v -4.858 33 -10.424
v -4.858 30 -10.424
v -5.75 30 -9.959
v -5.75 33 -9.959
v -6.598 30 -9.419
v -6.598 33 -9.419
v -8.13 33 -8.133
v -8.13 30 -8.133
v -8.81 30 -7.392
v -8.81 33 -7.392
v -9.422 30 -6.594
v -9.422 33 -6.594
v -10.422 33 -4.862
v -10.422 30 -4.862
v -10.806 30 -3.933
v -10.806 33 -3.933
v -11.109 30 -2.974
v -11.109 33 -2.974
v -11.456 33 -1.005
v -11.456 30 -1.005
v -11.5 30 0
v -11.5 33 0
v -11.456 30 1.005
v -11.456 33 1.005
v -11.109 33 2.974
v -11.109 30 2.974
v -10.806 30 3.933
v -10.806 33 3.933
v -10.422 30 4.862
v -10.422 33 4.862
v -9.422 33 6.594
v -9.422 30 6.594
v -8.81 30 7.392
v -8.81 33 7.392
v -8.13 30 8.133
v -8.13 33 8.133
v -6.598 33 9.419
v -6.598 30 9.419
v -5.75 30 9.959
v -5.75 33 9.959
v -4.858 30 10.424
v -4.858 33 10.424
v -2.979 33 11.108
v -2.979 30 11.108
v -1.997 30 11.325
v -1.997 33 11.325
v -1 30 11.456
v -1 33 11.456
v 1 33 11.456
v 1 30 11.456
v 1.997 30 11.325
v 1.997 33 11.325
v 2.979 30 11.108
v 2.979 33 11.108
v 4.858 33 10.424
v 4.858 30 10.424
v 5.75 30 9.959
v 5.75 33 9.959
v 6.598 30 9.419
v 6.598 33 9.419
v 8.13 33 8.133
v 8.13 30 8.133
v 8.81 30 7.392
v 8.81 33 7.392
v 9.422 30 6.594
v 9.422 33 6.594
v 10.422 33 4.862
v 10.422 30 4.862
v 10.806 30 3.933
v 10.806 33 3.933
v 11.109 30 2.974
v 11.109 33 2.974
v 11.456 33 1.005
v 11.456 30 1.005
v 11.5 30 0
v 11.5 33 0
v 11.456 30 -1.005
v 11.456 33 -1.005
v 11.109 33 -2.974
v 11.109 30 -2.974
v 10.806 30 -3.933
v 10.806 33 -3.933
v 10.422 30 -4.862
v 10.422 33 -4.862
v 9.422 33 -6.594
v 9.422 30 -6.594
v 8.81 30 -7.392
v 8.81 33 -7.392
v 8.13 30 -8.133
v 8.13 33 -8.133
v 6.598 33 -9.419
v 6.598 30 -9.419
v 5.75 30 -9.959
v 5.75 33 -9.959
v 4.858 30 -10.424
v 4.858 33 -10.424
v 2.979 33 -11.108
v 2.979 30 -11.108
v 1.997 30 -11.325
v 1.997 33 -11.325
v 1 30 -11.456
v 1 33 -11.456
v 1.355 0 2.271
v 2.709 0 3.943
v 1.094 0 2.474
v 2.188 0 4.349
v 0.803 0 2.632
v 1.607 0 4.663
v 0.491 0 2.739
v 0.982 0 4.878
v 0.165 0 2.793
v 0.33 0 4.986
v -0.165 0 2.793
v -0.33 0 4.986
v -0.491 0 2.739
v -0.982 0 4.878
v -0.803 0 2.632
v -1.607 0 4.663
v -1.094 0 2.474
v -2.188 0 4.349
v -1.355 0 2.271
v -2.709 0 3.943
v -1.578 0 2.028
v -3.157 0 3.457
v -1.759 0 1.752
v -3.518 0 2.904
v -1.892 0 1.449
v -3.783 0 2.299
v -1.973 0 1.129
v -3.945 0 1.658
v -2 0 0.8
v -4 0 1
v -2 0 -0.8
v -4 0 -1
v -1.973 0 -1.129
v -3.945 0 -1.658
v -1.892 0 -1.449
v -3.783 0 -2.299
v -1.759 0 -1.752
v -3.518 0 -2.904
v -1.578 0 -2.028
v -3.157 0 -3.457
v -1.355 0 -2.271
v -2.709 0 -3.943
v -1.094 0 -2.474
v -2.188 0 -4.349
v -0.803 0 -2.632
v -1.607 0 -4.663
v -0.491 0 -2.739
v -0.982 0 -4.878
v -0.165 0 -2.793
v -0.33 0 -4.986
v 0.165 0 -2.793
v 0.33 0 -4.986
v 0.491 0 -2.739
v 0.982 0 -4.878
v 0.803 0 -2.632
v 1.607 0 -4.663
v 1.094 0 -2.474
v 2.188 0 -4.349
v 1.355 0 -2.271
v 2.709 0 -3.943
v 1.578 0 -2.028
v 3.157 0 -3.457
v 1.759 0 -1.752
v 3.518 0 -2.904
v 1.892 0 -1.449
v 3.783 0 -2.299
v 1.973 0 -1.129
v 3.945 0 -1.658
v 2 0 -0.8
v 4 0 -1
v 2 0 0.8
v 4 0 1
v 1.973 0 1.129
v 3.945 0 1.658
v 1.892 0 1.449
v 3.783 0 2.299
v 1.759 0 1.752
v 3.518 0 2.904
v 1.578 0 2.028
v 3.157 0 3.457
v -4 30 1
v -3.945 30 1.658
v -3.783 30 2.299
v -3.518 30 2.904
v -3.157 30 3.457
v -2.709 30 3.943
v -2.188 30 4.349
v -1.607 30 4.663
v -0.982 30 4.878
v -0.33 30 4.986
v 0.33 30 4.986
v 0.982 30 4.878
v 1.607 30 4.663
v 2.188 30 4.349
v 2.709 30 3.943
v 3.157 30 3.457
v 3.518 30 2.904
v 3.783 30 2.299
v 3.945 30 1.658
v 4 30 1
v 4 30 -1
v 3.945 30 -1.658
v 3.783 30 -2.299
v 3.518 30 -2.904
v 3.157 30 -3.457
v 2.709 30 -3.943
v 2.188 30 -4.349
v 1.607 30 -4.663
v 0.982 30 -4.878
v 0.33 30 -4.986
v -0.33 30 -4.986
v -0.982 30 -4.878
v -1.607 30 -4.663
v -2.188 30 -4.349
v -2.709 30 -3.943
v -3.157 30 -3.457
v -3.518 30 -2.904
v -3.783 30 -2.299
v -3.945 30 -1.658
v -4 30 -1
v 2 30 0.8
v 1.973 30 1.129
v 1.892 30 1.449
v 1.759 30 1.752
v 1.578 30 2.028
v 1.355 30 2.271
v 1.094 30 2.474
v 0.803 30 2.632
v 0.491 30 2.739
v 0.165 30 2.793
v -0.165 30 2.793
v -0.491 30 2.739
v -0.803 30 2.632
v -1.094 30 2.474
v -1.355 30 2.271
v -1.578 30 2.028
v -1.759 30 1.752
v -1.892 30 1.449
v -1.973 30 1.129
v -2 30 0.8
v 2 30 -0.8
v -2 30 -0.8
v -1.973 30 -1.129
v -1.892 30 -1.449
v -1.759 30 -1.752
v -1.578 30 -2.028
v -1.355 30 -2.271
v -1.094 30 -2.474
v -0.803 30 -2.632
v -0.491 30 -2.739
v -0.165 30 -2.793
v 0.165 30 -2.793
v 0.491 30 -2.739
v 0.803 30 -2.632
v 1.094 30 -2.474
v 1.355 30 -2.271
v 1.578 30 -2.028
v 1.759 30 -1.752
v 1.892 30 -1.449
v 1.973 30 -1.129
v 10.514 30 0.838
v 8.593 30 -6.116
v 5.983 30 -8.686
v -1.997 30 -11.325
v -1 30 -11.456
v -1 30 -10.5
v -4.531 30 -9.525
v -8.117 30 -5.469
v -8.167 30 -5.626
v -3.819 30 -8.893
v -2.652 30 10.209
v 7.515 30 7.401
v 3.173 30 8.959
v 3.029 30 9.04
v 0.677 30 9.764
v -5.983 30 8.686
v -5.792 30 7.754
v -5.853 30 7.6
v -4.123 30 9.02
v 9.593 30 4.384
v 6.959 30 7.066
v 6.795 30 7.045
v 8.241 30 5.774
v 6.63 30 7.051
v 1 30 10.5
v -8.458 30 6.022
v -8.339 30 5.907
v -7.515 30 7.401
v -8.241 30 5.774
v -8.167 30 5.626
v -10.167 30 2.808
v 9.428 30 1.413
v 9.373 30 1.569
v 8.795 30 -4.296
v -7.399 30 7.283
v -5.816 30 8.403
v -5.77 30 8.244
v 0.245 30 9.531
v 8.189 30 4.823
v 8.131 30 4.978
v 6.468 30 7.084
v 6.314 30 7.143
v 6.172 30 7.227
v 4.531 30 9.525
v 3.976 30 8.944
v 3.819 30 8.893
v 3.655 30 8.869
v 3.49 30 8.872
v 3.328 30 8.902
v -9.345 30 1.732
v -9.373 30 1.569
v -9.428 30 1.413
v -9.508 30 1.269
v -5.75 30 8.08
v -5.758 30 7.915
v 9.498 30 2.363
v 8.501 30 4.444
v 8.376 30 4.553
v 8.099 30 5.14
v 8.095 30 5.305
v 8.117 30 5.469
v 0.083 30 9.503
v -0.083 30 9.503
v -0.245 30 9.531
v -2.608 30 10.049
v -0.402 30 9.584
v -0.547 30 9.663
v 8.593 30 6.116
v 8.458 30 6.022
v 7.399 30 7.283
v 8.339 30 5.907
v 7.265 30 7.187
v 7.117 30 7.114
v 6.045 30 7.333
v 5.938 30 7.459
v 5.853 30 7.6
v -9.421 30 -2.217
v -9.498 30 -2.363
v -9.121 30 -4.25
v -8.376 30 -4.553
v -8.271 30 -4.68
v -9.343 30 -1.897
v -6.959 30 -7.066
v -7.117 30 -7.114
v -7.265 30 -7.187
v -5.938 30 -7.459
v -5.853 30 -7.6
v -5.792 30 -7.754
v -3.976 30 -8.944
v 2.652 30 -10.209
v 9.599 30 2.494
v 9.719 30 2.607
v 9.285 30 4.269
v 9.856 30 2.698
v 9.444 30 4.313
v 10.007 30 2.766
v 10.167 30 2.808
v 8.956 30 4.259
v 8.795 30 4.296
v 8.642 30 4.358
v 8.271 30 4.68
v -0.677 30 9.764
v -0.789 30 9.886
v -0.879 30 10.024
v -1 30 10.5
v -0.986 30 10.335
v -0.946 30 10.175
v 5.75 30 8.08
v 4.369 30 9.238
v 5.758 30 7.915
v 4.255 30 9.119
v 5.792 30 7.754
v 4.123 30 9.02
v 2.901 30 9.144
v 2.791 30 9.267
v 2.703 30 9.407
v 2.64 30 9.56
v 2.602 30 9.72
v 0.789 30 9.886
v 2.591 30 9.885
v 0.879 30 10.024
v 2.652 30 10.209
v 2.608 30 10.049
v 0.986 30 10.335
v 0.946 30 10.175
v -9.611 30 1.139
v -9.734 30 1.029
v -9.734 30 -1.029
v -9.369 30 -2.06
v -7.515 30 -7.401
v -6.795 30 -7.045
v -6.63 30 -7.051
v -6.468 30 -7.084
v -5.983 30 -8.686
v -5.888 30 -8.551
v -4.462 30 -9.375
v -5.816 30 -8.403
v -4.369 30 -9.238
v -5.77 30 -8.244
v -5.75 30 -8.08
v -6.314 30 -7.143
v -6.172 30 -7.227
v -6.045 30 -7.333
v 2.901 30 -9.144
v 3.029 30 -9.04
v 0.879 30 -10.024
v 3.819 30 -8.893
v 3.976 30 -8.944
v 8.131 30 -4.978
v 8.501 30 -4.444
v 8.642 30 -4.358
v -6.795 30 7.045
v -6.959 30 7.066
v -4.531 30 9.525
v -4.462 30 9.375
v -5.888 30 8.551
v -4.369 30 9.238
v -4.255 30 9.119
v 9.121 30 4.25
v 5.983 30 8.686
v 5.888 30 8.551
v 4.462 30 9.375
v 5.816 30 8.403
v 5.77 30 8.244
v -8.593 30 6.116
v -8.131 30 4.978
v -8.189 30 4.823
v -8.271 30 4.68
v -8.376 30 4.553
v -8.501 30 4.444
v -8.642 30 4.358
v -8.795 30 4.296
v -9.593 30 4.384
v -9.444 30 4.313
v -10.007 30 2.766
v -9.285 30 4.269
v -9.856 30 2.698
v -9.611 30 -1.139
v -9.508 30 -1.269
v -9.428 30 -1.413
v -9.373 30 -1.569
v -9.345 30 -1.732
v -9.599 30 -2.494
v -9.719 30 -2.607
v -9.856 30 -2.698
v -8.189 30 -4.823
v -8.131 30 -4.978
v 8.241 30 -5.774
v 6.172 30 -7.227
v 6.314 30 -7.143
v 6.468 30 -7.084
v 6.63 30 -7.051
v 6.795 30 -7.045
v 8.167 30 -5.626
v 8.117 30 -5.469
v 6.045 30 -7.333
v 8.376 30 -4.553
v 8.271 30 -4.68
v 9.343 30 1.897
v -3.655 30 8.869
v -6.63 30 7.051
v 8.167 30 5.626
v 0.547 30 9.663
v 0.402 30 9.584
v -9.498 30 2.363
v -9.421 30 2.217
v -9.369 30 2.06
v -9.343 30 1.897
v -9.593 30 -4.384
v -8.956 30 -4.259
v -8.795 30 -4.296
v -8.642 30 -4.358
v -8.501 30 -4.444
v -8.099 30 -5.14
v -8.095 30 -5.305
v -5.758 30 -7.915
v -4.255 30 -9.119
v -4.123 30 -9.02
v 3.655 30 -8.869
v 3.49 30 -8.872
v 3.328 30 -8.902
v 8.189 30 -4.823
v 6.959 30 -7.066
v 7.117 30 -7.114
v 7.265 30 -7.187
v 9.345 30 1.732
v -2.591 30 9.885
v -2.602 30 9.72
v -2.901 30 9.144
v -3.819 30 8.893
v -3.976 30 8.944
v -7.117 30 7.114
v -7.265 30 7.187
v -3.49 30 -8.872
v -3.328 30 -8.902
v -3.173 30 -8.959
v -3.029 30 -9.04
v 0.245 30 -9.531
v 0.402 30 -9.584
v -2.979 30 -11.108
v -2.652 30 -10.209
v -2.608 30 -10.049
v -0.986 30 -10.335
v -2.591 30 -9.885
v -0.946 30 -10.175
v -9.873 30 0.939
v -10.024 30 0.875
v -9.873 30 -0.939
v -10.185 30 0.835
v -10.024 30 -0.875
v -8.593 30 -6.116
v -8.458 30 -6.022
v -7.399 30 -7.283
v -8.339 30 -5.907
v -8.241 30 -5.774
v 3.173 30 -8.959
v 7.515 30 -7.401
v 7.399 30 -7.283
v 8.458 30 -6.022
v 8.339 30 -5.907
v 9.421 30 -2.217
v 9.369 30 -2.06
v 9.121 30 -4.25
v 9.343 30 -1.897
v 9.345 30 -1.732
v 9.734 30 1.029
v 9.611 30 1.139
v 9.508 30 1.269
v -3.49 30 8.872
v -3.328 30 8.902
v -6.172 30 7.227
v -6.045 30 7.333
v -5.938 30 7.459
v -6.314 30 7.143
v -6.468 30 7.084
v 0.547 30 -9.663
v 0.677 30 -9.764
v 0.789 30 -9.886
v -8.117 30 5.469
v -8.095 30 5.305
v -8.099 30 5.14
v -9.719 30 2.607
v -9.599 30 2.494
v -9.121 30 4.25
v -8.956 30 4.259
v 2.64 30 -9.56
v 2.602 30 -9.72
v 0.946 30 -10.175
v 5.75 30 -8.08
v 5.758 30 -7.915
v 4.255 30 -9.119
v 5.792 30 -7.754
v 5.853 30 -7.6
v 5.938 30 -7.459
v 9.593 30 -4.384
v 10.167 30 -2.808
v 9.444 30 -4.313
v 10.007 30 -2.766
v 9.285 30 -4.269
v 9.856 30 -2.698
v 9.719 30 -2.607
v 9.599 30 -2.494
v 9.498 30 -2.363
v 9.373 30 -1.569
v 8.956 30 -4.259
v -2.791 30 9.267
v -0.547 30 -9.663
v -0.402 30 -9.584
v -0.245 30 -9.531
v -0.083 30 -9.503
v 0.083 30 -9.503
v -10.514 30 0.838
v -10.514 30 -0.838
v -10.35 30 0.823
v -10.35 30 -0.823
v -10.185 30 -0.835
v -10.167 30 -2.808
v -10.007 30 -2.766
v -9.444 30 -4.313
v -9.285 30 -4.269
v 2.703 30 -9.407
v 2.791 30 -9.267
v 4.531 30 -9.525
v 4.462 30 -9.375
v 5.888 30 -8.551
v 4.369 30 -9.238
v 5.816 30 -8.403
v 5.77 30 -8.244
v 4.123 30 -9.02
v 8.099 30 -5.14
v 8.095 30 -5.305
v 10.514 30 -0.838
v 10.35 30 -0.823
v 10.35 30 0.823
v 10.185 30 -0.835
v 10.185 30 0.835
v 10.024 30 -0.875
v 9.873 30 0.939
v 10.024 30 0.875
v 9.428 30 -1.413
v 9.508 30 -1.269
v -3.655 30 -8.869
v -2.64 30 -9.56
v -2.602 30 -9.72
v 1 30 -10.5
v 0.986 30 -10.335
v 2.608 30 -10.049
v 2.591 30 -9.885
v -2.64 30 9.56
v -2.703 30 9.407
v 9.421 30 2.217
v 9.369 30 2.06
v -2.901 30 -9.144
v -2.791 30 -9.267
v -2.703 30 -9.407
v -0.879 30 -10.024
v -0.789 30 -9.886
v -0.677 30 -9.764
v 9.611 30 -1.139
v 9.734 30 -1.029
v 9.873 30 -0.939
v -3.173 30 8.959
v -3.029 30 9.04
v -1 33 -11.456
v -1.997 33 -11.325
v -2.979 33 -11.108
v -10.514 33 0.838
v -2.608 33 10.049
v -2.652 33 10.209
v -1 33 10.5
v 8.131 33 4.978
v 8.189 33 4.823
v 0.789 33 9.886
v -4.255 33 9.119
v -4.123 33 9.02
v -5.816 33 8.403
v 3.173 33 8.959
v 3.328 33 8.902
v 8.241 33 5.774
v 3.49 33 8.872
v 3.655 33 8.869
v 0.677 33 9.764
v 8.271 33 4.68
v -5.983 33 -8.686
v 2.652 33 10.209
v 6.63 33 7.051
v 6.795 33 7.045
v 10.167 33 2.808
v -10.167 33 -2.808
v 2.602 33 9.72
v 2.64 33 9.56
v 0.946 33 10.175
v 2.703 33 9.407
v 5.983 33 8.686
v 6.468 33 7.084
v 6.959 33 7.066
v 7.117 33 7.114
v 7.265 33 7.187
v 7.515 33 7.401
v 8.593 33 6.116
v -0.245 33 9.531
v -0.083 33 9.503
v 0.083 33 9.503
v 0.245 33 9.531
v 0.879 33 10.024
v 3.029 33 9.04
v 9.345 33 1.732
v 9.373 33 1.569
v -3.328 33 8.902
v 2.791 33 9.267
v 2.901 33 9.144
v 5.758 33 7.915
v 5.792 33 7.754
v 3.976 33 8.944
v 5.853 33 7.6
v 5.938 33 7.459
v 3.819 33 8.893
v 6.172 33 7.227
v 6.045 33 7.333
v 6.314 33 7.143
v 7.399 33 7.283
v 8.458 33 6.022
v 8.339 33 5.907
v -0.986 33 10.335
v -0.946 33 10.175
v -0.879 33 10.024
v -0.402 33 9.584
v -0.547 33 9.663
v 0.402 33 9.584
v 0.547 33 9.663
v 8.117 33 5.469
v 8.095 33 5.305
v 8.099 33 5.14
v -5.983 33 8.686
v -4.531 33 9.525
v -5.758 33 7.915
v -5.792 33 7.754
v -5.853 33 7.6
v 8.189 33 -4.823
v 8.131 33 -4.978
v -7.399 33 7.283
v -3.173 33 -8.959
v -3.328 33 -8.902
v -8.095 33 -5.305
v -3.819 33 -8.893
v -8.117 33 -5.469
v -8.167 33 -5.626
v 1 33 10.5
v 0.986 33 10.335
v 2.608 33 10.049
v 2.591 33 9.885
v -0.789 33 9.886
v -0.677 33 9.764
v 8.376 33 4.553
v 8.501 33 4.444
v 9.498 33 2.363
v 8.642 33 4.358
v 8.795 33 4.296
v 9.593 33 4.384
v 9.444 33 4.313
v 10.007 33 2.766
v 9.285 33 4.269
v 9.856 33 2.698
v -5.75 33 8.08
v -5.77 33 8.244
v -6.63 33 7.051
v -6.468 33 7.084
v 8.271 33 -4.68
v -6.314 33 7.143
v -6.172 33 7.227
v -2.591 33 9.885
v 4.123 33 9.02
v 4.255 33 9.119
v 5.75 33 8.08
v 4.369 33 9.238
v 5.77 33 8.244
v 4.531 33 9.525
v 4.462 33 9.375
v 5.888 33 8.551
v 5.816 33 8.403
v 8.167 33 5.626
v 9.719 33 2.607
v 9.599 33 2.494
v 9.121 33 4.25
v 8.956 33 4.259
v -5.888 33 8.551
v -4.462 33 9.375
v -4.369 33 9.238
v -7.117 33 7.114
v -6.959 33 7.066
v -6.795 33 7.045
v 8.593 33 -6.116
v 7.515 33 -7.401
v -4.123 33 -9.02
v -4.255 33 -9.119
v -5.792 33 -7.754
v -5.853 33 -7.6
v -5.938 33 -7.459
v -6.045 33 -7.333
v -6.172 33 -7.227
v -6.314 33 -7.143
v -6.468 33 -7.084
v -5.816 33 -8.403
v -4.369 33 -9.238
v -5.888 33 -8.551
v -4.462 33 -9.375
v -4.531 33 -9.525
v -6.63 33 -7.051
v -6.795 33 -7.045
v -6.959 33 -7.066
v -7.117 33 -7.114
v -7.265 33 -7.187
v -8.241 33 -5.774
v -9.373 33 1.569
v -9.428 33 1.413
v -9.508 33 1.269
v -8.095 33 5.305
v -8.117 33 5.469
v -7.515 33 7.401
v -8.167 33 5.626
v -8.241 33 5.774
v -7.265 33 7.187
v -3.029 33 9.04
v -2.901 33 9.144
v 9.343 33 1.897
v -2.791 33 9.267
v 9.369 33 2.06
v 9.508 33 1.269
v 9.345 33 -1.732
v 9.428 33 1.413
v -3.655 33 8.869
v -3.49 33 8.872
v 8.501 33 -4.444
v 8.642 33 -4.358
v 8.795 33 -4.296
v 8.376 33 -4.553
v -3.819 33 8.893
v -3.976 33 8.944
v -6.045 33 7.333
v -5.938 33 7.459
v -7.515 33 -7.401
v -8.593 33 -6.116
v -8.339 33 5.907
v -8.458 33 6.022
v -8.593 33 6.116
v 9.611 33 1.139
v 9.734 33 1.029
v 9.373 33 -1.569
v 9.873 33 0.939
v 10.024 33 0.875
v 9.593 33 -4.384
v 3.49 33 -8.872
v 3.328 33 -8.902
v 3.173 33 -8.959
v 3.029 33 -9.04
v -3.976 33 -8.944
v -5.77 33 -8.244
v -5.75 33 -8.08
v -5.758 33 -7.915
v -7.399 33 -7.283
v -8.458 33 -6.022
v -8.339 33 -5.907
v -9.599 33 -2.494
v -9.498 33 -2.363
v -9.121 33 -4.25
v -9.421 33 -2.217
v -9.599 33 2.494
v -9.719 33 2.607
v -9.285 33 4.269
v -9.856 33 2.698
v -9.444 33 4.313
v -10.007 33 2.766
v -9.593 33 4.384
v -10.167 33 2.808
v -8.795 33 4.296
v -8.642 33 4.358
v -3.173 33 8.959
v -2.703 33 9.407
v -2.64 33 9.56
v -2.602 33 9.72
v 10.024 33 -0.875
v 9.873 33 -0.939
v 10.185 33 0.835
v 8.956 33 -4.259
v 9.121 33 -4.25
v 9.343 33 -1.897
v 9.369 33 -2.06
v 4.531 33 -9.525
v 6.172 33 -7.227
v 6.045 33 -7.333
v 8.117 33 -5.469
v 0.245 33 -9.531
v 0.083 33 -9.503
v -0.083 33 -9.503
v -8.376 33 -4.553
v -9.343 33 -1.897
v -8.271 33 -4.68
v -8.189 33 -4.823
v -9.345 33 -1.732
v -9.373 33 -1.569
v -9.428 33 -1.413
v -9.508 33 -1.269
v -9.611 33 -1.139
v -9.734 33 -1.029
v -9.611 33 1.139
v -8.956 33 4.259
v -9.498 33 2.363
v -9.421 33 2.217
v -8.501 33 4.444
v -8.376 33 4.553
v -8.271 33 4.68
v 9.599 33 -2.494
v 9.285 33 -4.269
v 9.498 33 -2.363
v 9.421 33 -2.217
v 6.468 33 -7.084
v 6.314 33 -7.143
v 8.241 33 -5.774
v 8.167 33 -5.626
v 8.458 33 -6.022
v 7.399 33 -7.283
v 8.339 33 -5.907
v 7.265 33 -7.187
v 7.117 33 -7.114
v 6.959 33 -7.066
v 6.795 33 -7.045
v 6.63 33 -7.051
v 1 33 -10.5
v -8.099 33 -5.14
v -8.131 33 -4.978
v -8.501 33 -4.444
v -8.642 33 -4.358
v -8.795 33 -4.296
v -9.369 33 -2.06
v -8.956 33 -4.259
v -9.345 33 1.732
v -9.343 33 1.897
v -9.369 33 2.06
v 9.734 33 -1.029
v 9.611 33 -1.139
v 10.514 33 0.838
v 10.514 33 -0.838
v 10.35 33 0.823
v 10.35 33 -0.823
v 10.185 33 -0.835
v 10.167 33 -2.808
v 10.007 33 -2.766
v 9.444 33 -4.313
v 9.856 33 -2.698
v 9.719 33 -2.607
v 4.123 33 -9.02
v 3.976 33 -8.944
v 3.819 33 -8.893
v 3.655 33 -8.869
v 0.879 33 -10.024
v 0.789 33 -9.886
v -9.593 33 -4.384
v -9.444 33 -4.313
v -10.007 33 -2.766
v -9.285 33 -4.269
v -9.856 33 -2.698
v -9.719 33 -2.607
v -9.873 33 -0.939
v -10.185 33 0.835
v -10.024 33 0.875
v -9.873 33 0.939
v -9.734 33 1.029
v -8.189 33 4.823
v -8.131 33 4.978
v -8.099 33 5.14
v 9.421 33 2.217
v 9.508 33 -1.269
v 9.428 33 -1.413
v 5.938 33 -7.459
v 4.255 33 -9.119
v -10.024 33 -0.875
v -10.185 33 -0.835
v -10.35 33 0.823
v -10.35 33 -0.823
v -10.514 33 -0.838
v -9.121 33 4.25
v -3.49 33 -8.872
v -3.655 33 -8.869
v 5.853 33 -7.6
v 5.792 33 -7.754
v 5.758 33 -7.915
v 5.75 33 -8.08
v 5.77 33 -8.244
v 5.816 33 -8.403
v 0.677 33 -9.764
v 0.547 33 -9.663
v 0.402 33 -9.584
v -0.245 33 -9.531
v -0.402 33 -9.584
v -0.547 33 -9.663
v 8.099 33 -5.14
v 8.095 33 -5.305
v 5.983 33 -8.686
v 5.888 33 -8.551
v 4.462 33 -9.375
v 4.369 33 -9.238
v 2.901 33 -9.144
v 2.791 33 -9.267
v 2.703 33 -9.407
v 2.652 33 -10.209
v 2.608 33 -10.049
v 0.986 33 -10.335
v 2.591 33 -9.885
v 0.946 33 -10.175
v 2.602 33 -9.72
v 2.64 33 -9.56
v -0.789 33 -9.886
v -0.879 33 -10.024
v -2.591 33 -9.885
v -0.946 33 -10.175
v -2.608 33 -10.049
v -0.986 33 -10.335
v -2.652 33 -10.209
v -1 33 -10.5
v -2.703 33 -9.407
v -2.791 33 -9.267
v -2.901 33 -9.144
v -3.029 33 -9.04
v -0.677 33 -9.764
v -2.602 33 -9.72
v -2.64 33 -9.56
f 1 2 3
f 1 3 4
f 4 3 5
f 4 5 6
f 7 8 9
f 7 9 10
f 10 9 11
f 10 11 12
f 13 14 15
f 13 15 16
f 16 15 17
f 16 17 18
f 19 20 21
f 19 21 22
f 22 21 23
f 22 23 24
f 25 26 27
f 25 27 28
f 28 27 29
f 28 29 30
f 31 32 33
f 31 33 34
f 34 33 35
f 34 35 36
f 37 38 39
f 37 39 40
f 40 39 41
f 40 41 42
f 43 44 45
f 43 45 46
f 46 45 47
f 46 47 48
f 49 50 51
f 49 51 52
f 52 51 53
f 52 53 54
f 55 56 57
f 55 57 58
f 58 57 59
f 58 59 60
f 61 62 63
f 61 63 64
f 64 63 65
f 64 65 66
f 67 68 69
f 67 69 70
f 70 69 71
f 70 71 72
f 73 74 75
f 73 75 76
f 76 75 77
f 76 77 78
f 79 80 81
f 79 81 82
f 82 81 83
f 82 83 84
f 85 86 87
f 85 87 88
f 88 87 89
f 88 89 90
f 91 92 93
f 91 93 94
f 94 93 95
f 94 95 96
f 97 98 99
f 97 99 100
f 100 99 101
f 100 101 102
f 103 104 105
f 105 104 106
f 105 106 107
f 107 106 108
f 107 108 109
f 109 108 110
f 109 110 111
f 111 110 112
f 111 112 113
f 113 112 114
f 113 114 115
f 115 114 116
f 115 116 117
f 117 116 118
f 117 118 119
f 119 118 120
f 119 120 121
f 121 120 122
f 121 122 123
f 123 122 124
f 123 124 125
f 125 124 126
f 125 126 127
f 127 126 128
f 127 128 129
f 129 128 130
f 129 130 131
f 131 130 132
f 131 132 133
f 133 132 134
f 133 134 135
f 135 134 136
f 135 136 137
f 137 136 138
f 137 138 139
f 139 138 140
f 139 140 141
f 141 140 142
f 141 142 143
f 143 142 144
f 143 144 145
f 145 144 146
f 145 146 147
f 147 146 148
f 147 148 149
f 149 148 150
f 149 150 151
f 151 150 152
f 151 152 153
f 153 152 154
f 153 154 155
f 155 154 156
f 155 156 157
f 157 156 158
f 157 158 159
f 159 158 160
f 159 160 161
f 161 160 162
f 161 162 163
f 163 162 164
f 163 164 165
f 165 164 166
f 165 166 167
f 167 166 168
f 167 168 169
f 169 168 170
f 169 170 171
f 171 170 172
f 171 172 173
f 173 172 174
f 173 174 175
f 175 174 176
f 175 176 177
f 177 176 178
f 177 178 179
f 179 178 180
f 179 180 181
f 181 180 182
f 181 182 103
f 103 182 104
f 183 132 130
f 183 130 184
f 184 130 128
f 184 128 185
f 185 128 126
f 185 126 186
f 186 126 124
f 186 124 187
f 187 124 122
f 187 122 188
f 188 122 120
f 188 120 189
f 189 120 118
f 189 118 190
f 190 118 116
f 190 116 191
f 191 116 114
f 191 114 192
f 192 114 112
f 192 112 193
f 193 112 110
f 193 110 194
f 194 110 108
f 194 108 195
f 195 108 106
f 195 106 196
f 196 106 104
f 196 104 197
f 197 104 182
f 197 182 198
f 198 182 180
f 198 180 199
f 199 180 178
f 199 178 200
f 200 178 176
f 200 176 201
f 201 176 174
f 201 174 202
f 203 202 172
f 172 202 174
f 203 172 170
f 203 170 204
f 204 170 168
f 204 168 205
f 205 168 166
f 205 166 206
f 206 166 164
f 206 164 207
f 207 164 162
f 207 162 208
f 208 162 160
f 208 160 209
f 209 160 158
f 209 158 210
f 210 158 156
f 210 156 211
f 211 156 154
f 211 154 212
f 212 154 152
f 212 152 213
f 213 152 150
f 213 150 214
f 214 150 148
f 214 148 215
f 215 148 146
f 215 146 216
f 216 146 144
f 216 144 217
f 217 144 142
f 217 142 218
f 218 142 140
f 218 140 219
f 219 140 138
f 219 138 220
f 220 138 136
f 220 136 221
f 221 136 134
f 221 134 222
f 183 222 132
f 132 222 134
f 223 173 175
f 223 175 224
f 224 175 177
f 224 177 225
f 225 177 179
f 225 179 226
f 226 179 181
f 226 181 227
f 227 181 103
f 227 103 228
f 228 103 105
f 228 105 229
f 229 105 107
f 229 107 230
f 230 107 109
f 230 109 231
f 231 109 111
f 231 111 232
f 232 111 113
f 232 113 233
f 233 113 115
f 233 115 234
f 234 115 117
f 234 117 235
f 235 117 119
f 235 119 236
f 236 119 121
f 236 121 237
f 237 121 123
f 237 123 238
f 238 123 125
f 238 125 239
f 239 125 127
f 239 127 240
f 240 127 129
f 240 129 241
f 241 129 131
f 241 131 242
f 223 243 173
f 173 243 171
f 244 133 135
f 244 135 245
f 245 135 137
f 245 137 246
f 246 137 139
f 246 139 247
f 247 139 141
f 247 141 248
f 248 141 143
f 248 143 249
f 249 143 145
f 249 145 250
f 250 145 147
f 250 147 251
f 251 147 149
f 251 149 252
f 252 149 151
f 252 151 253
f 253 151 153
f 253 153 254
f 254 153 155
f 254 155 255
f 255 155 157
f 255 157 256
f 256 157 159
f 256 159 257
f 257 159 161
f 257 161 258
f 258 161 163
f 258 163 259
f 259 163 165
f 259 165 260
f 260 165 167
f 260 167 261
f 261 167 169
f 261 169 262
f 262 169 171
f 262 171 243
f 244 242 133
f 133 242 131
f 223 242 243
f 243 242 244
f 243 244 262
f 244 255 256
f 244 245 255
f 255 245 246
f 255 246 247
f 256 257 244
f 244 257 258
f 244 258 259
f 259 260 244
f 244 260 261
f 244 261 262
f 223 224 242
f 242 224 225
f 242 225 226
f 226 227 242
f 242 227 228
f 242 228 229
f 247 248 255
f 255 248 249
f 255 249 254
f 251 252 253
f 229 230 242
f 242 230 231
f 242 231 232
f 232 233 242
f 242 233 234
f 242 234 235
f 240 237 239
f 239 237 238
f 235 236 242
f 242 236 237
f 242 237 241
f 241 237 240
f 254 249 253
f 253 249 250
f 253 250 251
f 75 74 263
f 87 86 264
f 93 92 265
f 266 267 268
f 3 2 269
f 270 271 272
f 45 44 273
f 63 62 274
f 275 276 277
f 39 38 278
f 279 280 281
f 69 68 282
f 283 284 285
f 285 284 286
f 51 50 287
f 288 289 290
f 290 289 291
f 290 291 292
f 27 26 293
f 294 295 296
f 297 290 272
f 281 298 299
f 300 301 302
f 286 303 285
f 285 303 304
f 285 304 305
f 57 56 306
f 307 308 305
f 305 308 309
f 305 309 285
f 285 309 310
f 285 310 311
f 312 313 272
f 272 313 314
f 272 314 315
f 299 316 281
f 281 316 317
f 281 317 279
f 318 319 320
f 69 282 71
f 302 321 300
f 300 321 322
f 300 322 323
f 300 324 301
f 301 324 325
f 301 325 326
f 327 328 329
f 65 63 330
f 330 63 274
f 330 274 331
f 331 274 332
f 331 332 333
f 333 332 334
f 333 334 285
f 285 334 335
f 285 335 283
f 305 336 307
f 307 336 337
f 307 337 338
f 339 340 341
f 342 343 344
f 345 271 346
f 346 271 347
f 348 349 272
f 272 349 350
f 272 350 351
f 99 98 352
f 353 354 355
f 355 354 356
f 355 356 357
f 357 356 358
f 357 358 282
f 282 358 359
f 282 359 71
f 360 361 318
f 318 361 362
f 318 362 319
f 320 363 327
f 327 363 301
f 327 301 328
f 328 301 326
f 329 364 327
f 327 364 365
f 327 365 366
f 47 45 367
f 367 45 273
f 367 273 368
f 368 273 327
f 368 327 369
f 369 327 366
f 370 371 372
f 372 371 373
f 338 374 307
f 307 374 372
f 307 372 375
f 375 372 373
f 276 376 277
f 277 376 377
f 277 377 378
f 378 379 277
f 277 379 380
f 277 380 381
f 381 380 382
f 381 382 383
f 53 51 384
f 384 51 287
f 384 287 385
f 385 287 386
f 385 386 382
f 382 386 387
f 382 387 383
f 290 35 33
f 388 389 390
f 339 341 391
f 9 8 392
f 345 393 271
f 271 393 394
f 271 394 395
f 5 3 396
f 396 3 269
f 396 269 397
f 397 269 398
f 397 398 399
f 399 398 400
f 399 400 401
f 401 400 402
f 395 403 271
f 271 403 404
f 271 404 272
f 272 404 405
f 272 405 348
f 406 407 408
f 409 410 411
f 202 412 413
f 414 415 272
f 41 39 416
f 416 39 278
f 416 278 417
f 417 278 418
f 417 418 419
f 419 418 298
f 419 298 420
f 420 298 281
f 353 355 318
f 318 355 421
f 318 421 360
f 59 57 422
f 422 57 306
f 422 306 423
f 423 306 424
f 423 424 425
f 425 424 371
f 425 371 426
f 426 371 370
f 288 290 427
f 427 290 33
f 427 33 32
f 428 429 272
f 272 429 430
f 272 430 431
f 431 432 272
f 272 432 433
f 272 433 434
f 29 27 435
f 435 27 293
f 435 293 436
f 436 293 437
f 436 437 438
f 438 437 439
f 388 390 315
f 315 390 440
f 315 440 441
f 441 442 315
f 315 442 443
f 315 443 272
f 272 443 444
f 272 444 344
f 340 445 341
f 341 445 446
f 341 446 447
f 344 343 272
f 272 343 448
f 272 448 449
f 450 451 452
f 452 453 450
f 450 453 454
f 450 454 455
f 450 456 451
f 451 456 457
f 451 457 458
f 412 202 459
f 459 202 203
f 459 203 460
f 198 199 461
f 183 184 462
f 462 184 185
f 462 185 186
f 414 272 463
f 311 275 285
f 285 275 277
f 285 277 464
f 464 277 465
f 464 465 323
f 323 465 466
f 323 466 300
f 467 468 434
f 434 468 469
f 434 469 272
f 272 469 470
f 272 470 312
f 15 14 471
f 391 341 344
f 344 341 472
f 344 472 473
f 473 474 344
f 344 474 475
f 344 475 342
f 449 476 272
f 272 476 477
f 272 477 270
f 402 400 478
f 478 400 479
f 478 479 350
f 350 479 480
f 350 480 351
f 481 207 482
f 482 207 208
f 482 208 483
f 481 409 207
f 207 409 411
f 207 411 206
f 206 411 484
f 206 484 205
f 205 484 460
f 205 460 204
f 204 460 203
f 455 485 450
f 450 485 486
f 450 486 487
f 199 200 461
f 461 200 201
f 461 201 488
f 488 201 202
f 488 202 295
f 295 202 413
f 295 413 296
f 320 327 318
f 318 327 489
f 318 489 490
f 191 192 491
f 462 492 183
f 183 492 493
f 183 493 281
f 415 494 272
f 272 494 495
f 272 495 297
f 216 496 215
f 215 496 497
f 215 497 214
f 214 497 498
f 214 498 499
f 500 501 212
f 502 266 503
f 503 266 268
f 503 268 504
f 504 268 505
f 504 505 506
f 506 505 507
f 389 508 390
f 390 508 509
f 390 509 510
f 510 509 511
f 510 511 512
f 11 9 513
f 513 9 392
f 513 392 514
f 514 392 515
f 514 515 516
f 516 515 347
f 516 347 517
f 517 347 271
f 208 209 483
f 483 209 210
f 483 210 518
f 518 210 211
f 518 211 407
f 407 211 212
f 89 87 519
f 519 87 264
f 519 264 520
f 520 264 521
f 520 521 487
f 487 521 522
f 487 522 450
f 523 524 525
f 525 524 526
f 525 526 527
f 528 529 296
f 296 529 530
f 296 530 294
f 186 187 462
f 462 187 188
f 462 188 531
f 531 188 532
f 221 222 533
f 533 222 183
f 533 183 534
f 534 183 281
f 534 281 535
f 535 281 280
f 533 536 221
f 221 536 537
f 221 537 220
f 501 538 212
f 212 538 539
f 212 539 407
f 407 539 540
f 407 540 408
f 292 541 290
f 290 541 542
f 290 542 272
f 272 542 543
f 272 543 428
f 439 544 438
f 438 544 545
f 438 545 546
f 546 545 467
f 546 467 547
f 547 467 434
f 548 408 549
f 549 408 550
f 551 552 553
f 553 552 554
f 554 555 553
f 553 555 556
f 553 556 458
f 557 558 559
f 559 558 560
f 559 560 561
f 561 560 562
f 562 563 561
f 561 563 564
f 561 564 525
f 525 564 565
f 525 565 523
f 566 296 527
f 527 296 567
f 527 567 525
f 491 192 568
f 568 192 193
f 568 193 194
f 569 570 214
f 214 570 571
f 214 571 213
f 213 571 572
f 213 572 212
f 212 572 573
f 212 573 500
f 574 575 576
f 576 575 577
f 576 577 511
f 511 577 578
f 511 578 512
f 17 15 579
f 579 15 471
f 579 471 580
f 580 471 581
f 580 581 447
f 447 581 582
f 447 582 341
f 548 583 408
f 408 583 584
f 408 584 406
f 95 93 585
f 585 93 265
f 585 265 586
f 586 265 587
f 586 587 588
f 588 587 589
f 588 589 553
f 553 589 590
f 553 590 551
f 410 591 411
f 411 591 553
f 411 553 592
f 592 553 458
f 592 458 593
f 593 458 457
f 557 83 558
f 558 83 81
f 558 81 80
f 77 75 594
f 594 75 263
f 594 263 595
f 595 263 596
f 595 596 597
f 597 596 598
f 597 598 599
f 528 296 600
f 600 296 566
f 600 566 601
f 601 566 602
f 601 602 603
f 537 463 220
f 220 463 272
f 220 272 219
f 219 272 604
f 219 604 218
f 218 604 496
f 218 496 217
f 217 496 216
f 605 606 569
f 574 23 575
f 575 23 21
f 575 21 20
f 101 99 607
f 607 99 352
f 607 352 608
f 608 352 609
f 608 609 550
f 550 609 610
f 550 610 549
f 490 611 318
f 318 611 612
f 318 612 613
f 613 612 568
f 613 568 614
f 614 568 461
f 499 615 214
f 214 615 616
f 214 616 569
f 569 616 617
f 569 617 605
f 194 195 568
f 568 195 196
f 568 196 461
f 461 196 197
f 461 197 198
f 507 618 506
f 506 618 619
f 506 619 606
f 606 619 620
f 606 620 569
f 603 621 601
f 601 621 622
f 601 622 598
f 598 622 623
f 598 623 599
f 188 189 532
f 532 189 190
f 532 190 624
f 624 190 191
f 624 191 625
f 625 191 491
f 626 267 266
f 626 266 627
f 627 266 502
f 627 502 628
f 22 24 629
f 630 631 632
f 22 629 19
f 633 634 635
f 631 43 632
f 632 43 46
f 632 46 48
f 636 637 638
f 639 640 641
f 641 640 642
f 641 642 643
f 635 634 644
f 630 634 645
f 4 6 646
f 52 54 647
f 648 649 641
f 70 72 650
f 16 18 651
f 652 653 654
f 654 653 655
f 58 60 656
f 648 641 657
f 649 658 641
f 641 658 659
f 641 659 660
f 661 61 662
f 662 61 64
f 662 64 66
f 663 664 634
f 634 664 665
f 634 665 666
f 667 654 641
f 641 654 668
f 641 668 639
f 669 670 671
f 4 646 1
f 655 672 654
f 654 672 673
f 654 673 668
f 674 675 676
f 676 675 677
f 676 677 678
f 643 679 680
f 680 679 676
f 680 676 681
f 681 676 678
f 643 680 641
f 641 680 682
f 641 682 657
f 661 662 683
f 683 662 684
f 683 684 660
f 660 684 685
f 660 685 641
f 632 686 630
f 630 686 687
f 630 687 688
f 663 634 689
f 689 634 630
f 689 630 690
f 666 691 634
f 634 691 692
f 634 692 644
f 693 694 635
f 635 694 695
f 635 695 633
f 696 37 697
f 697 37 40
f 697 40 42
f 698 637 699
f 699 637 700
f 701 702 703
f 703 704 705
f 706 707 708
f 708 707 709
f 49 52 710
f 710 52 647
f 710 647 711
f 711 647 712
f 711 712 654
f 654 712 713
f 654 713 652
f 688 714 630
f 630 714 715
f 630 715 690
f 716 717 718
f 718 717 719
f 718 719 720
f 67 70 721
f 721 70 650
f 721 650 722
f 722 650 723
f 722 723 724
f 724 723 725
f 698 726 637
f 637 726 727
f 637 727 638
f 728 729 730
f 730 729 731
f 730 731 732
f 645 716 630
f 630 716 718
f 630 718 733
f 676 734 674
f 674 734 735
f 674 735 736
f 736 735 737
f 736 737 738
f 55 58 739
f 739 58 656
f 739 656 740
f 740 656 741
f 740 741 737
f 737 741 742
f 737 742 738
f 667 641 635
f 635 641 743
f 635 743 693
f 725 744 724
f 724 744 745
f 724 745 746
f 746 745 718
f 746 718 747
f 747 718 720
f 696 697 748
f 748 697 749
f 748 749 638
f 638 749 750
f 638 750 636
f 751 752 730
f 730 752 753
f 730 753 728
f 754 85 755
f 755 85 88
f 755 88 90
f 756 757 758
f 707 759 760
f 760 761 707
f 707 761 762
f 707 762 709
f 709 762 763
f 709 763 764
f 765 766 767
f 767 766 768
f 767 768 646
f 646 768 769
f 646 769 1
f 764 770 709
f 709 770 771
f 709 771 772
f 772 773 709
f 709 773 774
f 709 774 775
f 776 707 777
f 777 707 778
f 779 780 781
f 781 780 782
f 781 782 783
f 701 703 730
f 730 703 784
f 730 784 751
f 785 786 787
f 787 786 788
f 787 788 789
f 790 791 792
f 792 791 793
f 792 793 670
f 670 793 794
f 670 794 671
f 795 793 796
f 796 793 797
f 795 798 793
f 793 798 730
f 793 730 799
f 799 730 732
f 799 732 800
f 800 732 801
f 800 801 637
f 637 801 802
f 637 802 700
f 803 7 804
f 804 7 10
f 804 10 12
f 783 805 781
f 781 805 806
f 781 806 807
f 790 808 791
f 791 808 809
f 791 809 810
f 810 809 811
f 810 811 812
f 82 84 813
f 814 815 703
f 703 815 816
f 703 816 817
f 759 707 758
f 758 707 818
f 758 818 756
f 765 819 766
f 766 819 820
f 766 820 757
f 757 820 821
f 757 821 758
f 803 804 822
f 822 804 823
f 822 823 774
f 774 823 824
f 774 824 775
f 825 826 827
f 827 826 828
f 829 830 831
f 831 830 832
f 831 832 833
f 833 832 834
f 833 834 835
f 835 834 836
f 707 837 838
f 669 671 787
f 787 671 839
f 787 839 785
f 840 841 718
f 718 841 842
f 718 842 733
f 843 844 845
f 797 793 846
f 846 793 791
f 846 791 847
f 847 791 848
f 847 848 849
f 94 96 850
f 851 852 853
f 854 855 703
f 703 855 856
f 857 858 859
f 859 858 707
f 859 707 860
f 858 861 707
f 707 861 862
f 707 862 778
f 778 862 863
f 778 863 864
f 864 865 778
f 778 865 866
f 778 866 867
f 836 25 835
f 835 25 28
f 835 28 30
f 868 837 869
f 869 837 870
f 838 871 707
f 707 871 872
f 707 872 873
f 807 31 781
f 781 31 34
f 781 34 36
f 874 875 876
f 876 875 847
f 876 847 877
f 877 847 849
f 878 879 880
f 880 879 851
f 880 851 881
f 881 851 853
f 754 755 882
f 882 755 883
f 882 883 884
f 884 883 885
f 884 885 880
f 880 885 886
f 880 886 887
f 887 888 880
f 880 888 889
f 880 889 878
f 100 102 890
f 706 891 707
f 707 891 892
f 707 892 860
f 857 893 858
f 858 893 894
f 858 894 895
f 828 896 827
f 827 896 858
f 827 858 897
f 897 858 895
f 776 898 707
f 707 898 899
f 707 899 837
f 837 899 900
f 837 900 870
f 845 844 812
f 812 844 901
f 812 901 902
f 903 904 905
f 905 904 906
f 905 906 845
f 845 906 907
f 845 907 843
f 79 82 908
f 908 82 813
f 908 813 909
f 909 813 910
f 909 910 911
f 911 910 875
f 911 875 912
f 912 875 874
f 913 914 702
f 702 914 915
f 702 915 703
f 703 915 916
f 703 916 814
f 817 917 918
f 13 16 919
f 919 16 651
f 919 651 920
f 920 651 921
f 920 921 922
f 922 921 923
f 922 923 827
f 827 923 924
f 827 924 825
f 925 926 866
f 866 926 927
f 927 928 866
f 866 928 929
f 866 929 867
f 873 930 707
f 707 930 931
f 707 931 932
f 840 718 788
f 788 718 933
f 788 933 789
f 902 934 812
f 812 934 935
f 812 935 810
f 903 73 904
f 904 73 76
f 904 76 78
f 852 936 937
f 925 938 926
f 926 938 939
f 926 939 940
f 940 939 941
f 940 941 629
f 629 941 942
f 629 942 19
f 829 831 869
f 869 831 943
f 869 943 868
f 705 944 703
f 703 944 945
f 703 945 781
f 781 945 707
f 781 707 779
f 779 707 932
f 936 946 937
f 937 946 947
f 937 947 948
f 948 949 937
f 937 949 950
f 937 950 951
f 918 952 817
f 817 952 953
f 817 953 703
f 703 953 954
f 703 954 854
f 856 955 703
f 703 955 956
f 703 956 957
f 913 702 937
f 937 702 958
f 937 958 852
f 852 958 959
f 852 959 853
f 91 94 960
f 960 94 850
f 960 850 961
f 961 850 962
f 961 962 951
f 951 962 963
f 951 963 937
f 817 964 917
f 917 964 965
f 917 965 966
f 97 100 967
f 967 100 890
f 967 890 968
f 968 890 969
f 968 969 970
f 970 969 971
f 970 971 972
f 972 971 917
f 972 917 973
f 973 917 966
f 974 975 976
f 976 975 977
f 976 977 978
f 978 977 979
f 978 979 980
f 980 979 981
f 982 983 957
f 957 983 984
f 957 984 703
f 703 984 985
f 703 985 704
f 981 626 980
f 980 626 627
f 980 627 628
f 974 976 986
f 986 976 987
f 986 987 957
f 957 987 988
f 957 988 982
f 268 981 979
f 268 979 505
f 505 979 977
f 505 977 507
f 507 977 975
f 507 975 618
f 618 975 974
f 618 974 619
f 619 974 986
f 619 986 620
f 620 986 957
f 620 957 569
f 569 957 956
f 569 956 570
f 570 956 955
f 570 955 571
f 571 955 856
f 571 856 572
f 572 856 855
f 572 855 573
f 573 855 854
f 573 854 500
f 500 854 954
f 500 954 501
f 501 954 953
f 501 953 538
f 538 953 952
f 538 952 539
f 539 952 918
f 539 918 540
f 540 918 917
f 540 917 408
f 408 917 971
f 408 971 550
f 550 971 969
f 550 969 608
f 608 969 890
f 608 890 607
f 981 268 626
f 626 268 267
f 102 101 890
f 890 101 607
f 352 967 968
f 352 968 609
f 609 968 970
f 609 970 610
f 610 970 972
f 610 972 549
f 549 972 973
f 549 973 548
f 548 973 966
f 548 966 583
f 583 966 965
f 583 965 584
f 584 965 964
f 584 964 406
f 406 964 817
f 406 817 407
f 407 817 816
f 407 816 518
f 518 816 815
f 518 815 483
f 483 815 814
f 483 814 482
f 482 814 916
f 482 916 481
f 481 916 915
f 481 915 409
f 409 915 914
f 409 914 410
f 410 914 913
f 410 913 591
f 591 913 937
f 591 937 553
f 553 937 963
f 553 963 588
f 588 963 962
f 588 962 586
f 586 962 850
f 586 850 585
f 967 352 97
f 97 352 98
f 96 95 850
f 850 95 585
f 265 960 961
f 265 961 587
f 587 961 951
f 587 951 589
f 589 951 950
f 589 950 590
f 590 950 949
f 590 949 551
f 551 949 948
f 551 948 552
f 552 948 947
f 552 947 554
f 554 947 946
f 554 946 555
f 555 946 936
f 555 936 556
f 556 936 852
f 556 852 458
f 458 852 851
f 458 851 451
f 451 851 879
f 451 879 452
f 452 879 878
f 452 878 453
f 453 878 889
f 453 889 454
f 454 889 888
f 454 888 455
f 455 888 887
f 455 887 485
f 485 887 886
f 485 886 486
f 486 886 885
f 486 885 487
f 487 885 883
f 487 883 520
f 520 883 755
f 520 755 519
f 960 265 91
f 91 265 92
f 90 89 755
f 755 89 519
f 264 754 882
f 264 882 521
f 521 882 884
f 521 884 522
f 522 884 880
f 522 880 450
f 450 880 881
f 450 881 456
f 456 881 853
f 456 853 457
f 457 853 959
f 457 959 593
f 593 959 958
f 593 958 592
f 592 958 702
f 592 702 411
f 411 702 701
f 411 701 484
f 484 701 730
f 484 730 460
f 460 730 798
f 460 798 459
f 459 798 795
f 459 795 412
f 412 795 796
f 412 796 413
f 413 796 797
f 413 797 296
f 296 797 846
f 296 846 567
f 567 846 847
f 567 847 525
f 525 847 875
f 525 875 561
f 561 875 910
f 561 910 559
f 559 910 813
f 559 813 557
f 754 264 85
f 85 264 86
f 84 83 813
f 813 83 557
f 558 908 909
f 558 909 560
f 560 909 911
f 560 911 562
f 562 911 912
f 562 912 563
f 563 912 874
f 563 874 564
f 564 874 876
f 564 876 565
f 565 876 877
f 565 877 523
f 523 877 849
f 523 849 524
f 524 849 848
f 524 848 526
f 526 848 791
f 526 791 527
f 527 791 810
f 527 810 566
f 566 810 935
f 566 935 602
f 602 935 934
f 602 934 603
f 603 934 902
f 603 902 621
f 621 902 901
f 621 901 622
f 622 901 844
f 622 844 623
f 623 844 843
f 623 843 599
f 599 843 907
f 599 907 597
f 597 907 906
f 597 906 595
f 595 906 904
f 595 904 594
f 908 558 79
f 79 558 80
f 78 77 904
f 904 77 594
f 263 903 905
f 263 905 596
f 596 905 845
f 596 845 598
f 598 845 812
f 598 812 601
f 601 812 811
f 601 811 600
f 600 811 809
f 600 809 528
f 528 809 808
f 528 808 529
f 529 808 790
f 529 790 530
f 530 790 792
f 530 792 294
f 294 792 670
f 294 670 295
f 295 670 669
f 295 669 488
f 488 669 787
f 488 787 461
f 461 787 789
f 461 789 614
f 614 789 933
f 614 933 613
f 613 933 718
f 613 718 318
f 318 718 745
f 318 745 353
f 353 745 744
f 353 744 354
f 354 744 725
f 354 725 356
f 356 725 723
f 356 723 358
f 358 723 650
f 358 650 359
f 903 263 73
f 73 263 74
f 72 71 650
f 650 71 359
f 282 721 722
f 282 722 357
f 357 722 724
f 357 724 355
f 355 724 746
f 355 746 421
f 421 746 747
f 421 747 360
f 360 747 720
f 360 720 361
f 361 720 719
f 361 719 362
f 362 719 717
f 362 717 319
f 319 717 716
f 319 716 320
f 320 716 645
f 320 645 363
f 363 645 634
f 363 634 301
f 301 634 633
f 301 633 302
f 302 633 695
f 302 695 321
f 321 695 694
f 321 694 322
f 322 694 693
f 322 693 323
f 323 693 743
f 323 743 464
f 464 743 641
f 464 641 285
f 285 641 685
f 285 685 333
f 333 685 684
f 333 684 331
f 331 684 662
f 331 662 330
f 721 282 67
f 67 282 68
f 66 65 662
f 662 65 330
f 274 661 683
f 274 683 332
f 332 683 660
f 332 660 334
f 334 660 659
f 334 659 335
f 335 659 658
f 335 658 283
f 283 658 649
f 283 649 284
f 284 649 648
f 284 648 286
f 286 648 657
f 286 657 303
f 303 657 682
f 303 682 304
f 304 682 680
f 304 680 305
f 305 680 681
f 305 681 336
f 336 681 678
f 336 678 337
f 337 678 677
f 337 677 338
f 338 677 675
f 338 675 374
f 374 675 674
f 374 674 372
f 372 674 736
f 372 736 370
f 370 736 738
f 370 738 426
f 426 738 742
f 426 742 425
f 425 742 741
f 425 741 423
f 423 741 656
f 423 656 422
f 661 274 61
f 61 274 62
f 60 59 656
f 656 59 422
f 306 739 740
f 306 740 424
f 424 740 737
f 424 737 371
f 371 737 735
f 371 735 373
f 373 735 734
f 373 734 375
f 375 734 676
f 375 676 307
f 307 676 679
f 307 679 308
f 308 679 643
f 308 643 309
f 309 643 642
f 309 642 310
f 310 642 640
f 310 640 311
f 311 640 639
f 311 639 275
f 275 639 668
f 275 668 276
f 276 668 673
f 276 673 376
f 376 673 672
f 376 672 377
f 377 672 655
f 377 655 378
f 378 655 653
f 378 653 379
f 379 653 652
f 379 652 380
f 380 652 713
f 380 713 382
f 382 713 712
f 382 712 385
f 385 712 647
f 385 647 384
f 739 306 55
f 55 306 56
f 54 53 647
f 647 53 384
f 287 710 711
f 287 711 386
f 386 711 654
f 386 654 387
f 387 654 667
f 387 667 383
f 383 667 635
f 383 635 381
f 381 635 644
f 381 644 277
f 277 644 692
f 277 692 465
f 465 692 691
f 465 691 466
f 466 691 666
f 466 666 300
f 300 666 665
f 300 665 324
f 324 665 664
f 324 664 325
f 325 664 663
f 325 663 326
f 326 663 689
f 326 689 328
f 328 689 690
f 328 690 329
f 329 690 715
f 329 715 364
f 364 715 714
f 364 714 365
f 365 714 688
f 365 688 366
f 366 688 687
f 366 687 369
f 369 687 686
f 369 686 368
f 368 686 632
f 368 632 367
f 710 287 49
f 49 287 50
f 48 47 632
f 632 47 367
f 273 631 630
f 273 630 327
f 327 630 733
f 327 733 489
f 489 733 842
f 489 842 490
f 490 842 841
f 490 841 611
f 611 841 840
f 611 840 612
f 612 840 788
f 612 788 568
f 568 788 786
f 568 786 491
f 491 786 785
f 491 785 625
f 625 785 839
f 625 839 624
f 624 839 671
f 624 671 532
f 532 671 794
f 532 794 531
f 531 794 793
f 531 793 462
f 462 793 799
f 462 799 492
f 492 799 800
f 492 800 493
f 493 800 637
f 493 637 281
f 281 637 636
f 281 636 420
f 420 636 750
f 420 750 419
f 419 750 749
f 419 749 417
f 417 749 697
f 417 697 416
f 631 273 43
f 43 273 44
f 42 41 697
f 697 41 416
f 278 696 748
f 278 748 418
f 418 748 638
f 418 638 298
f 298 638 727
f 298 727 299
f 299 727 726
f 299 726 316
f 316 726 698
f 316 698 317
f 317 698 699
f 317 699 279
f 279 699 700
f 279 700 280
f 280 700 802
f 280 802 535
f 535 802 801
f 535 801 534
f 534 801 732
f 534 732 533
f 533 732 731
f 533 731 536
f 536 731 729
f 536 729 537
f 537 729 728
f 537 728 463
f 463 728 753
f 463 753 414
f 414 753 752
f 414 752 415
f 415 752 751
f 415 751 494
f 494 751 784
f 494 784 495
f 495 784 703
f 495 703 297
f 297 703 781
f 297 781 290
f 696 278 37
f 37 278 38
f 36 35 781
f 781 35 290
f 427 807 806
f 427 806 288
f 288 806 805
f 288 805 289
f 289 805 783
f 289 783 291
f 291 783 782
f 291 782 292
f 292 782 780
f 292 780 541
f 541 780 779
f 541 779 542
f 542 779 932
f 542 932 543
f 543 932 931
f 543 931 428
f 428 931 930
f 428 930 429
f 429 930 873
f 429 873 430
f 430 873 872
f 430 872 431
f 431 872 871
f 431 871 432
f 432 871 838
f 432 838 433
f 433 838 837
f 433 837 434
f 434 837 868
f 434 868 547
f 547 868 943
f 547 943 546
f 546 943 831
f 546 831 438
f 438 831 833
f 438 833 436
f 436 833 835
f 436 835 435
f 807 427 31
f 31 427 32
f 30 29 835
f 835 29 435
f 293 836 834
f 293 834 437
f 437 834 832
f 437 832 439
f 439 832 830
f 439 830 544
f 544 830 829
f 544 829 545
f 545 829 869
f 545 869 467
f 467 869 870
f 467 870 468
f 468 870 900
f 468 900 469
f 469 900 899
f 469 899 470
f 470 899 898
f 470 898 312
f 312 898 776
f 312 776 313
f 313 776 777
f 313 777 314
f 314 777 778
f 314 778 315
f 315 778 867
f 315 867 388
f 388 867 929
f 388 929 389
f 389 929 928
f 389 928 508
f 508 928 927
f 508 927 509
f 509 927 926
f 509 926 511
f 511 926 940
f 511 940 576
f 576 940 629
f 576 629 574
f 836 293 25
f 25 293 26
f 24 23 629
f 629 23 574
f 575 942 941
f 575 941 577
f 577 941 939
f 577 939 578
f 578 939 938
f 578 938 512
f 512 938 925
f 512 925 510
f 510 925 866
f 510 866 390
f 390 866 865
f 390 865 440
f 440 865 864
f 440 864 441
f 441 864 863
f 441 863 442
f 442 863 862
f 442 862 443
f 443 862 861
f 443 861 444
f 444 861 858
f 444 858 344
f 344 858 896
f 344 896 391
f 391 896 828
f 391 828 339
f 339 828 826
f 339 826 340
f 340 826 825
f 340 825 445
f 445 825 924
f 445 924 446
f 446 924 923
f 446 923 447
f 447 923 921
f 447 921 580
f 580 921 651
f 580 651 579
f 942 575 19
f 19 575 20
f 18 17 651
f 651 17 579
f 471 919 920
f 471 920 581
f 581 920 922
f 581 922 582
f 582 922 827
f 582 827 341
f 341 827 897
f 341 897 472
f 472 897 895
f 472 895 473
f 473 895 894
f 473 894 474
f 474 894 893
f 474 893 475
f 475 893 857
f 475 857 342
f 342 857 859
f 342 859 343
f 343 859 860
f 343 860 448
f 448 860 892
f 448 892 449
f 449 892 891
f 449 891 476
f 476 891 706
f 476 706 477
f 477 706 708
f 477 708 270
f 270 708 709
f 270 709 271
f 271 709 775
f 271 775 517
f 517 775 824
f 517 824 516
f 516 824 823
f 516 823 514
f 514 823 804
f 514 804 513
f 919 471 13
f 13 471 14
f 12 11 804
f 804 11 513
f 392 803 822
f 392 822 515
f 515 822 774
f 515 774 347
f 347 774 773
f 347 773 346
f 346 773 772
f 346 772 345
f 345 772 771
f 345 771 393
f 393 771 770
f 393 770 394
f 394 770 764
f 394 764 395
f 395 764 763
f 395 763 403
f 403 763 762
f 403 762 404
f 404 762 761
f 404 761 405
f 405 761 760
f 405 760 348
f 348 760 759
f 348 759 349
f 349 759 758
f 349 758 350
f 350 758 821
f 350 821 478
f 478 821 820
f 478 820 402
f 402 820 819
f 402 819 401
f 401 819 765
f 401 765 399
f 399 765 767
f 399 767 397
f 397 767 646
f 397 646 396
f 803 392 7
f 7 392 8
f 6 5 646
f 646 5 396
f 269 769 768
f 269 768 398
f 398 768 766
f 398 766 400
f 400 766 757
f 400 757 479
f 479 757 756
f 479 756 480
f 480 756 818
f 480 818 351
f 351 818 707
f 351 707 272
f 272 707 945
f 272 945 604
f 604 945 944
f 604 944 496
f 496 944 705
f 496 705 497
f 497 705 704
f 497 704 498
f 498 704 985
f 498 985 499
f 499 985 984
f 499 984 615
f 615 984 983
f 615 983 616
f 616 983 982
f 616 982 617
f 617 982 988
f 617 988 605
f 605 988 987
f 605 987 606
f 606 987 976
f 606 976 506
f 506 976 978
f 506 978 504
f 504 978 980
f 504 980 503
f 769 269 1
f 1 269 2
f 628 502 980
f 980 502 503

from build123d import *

# Parameters (mm, degrees)
BOSS_EXTRUDE1_DEPTH = 30
SKETCH2_R           = 11.5
BOSS_EXTRUDE2_DEPTH = 3
CUT_EXTRUDE1_DEPTH  = 37.789944278


with BuildPart() as part:
    # Sketch1 → Boss-Extrude1 (new body)
    with BuildSketch(Plane(origin=(0, 0, 0), x_dir=(1, 0, 0), z_dir=(0, 1, 0))):
        with BuildLine():
            Line((-4, -1), (-4, 1))
            ThreePointArc((-4, 1), (0, 5), (4, 1))
            Line((4, 1), (4, -1))
            ThreePointArc((4, -1), (0, -5), (-4, -1))
        make_face()
        with BuildLine():
            Line((-2, -0.8), (-2, 0.8))
            ThreePointArc((-2, 0.8), (0, 2.8), (2, 0.8))
            Line((2, 0.8), (2, -0.8))
            ThreePointArc((2, -0.8), (0, -2.8), (-2, -0.8))
        make_face(mode=Mode.SUBTRACT)
    extrude(amount=BOSS_EXTRUDE1_DEPTH)

    # Sketch2 → Boss-Extrude2 (add)
    with BuildSketch(Plane(origin=(0, 30, 0), x_dir=(1, 0, 0), z_dir=(0, 1, 0))):
        with Locations(Location((0, 0, 0), (0, 0, 270))):
            Circle(SKETCH2_R)
    extrude(amount=BOSS_EXTRUDE2_DEPTH)

    # Sketch3 → Cut-Extrude1 (cut, through all)
    with BuildSketch(Plane(origin=(0, 33, 0), x_dir=(1, 0, 0), z_dir=(0, 1, 0))):
        with BuildLine():
            Line((-1, 10.5), (-1, 17.5))
            ThreePointArc((-1, 17.5), (0, 18.5), (1, 17.5))
            Line((1, 17.5), (1, 10.5))
            ThreePointArc((1, 10.5), (0, 9.5), (-1, 10.5))
        make_face()
        with BuildLine():
            Line((2.651518884, 10.208792662), (5.045659887, 16.786641007))
            ThreePointArc((5.045659887, 16.786641007), (6.327372652, 17.384313485), (6.925045129, 16.10260072))
            Line((6.925045129, 16.10260072), (4.530904126, 9.524752375))
            ThreePointArc((4.530904126, 9.524752375), (3.249191362, 8.927079897), (2.651518884, 10.208792662))
        make_face()
        with BuildLine():
            Line((5.983225459, 8.686254262), (10.482738726, 14.048565364))
            ThreePointArc((10.482738726, 14.048565364), (11.891570779, 14.171822198), (12.014827613, 12.762990145))
            Line((12.014827613, 12.762990145), (7.515314345, 7.400679043))
            ThreePointArc((7.515314345, 7.400679043), (6.106482292, 7.27742221), (5.983225459, 8.686254262))
        make_face()
        with BuildLine():
            Line((8.59326674, 6.116025404), (14.655444566, 9.616025404))
            ThreePointArc((14.655444566, 9.616025404), (16.02146997, 9.25), (15.655444566, 7.883974596))
            Line((15.655444566, 7.883974596), (9.59326674, 4.383974596))
            ThreePointArc((9.59326674, 4.383974596), (8.227241336, 4.75), (8.59326674, 6.116025404))
        make_face()
        with BuildLine():
            Line((10.166833229, 2.808113619), (17.0604875, 4.023650862))
            ThreePointArc((17.0604875, 4.023650862), (18.218943431, 3.212491287), (17.407783855, 2.054035356))
            Line((17.407783855, 2.054035356), (10.514129584, 0.838498112))
            ThreePointArc((10.514129584, 0.838498112), (9.355673654, 1.649657688), (10.166833229, 2.808113619))
        make_face()
        with BuildLine():
            Line((10.514129584, -0.838498112), (17.407783855, -2.054035356))
            ThreePointArc((17.407783855, -2.054035356), (18.218943431, -3.212491287), (17.0604875, -4.023650862))
            Line((17.0604875, -4.023650862), (10.166833229, -2.808113619))
            ThreePointArc((10.166833229, -2.808113619), (9.355673654, -1.649657688), (10.514129584, -0.838498112))
        make_face()
        with BuildLine():
            Line((9.59326674, -4.383974596), (15.655444566, -7.883974596))
            ThreePointArc((15.655444566, -7.883974596), (16.02146997, -9.25), (14.655444566, -9.616025404))
            Line((14.655444566, -9.616025404), (8.59326674, -6.116025404))
            ThreePointArc((8.59326674, -6.116025404), (8.227241336, -4.75), (9.59326674, -4.383974596))
        make_face()
        with BuildLine():
            Line((7.515314345, -7.400679043), (12.014827613, -12.762990145))
            ThreePointArc((12.014827613, -12.762990145), (11.891570779, -14.171822198), (10.482738726, -14.048565364))
            Line((10.482738726, -14.048565364), (5.983225459, -8.686254262))
            ThreePointArc((5.983225459, -8.686254262), (6.106482292, -7.27742221), (7.515314345, -7.400679043))
        make_face()
        with BuildLine():
            Line((4.530904126, -9.524752375), (6.925045129, -16.10260072))
            ThreePointArc((6.925045129, -16.10260072), (6.327372652, -17.384313485), (5.045659887, -16.786641007))
            Line((5.045659887, -16.786641007), (2.651518884, -10.208792662))
            ThreePointArc((2.651518884, -10.208792662), (3.249191362, -8.927079897), (4.530904126, -9.524752375))
        make_face()
        with BuildLine():
            Line((1, -10.5), (1, -17.5))
            ThreePointArc((1, -17.5), (0, -18.5), (-1, -17.5))
            Line((-1, -17.5), (-1, -10.5))
            ThreePointArc((-1, -10.5), (0, -9.5), (1, -10.5))
        make_face()
        with BuildLine():
            Line((-2.651518884, -10.208792662), (-5.045659887, -16.786641007))
            ThreePointArc((-5.045659887, -16.786641007), (-6.327372652, -17.384313485), (-6.925045129, -16.10260072))
            Line((-6.925045129, -16.10260072), (-4.530904126, -9.524752375))
            ThreePointArc((-4.530904126, -9.524752375), (-3.249191362, -8.927079897), (-2.651518884, -10.208792662))
        make_face()
        with BuildLine():
            Line((-5.983225459, -8.686254262), (-10.482738726, -14.048565364))
            ThreePointArc((-10.482738726, -14.048565364), (-11.891570779, -14.171822198), (-12.014827613, -12.762990145))
            Line((-12.014827613, -12.762990145), (-7.515314345, -7.400679043))
            ThreePointArc((-7.515314345, -7.400679043), (-6.106482292, -7.27742221), (-5.983225459, -8.686254262))
        make_face()
        with BuildLine():
            Line((-8.59326674, -6.116025404), (-14.655444566, -9.616025404))
            ThreePointArc((-14.655444566, -9.616025404), (-16.02146997, -9.25), (-15.655444566, -7.883974596))
            Line((-15.655444566, -7.883974596), (-9.59326674, -4.383974596))
            ThreePointArc((-9.59326674, -4.383974596), (-8.227241336, -4.75), (-8.59326674, -6.116025404))
        make_face()
        with BuildLine():
            Line((-10.166833229, -2.808113619), (-17.0604875, -4.023650862))
            ThreePointArc((-17.0604875, -4.023650862), (-18.218943431, -3.212491287), (-17.407783855, -2.054035356))
            Line((-17.407783855, -2.054035356), (-10.514129584, -0.838498112))
            ThreePointArc((-10.514129584, -0.838498112), (-9.355673654, -1.649657688), (-10.166833229, -2.808113619))
        make_face()
        with BuildLine():
            Line((-10.514129584, 0.838498112), (-17.407783855, 2.054035356))
            ThreePointArc((-17.407783855, 2.054035356), (-18.218943431, 3.212491287), (-17.0604875, 4.023650862))
            Line((-17.0604875, 4.023650862), (-10.166833229, 2.808113619))
            ThreePointArc((-10.166833229, 2.808113619), (-9.355673654, 1.649657688), (-10.514129584, 0.838498112))
        make_face()
        with BuildLine():
            Line((-9.59326674, 4.383974596), (-15.655444566, 7.883974596))
            ThreePointArc((-15.655444566, 7.883974596), (-16.02146997, 9.25), (-14.655444566, 9.616025404))
            Line((-14.655444566, 9.616025404), (-8.59326674, 6.116025404))
            ThreePointArc((-8.59326674, 6.116025404), (-8.227241336, 4.75), (-9.59326674, 4.383974596))
        make_face()
        with BuildLine():
            Line((-7.515314345, 7.400679043), (-12.014827613, 12.762990145))
            ThreePointArc((-12.014827613, 12.762990145), (-11.891570779, 14.171822198), (-10.482738726, 14.048565364))
            Line((-10.482738726, 14.048565364), (-5.983225459, 8.686254262))
            ThreePointArc((-5.983225459, 8.686254262), (-6.106482292, 7.27742221), (-7.515314345, 7.400679043))
        make_face()
        with BuildLine():
            Line((-4.530904126, 9.524752375), (-6.925045129, 16.10260072))
            ThreePointArc((-6.925045129, 16.10260072), (-6.327372652, 17.384313485), (-5.045659887, 16.786641007))
            Line((-5.045659887, 16.786641007), (-2.651518884, 10.208792662))
            ThreePointArc((-2.651518884, 10.208792662), (-3.249191362, 8.927079897), (-4.530904126, 9.524752375))
        make_face()
    extrude(amount=-CUT_EXTRUDE1_DEPTH, mode=Mode.SUBTRACT)


solid = part.part
